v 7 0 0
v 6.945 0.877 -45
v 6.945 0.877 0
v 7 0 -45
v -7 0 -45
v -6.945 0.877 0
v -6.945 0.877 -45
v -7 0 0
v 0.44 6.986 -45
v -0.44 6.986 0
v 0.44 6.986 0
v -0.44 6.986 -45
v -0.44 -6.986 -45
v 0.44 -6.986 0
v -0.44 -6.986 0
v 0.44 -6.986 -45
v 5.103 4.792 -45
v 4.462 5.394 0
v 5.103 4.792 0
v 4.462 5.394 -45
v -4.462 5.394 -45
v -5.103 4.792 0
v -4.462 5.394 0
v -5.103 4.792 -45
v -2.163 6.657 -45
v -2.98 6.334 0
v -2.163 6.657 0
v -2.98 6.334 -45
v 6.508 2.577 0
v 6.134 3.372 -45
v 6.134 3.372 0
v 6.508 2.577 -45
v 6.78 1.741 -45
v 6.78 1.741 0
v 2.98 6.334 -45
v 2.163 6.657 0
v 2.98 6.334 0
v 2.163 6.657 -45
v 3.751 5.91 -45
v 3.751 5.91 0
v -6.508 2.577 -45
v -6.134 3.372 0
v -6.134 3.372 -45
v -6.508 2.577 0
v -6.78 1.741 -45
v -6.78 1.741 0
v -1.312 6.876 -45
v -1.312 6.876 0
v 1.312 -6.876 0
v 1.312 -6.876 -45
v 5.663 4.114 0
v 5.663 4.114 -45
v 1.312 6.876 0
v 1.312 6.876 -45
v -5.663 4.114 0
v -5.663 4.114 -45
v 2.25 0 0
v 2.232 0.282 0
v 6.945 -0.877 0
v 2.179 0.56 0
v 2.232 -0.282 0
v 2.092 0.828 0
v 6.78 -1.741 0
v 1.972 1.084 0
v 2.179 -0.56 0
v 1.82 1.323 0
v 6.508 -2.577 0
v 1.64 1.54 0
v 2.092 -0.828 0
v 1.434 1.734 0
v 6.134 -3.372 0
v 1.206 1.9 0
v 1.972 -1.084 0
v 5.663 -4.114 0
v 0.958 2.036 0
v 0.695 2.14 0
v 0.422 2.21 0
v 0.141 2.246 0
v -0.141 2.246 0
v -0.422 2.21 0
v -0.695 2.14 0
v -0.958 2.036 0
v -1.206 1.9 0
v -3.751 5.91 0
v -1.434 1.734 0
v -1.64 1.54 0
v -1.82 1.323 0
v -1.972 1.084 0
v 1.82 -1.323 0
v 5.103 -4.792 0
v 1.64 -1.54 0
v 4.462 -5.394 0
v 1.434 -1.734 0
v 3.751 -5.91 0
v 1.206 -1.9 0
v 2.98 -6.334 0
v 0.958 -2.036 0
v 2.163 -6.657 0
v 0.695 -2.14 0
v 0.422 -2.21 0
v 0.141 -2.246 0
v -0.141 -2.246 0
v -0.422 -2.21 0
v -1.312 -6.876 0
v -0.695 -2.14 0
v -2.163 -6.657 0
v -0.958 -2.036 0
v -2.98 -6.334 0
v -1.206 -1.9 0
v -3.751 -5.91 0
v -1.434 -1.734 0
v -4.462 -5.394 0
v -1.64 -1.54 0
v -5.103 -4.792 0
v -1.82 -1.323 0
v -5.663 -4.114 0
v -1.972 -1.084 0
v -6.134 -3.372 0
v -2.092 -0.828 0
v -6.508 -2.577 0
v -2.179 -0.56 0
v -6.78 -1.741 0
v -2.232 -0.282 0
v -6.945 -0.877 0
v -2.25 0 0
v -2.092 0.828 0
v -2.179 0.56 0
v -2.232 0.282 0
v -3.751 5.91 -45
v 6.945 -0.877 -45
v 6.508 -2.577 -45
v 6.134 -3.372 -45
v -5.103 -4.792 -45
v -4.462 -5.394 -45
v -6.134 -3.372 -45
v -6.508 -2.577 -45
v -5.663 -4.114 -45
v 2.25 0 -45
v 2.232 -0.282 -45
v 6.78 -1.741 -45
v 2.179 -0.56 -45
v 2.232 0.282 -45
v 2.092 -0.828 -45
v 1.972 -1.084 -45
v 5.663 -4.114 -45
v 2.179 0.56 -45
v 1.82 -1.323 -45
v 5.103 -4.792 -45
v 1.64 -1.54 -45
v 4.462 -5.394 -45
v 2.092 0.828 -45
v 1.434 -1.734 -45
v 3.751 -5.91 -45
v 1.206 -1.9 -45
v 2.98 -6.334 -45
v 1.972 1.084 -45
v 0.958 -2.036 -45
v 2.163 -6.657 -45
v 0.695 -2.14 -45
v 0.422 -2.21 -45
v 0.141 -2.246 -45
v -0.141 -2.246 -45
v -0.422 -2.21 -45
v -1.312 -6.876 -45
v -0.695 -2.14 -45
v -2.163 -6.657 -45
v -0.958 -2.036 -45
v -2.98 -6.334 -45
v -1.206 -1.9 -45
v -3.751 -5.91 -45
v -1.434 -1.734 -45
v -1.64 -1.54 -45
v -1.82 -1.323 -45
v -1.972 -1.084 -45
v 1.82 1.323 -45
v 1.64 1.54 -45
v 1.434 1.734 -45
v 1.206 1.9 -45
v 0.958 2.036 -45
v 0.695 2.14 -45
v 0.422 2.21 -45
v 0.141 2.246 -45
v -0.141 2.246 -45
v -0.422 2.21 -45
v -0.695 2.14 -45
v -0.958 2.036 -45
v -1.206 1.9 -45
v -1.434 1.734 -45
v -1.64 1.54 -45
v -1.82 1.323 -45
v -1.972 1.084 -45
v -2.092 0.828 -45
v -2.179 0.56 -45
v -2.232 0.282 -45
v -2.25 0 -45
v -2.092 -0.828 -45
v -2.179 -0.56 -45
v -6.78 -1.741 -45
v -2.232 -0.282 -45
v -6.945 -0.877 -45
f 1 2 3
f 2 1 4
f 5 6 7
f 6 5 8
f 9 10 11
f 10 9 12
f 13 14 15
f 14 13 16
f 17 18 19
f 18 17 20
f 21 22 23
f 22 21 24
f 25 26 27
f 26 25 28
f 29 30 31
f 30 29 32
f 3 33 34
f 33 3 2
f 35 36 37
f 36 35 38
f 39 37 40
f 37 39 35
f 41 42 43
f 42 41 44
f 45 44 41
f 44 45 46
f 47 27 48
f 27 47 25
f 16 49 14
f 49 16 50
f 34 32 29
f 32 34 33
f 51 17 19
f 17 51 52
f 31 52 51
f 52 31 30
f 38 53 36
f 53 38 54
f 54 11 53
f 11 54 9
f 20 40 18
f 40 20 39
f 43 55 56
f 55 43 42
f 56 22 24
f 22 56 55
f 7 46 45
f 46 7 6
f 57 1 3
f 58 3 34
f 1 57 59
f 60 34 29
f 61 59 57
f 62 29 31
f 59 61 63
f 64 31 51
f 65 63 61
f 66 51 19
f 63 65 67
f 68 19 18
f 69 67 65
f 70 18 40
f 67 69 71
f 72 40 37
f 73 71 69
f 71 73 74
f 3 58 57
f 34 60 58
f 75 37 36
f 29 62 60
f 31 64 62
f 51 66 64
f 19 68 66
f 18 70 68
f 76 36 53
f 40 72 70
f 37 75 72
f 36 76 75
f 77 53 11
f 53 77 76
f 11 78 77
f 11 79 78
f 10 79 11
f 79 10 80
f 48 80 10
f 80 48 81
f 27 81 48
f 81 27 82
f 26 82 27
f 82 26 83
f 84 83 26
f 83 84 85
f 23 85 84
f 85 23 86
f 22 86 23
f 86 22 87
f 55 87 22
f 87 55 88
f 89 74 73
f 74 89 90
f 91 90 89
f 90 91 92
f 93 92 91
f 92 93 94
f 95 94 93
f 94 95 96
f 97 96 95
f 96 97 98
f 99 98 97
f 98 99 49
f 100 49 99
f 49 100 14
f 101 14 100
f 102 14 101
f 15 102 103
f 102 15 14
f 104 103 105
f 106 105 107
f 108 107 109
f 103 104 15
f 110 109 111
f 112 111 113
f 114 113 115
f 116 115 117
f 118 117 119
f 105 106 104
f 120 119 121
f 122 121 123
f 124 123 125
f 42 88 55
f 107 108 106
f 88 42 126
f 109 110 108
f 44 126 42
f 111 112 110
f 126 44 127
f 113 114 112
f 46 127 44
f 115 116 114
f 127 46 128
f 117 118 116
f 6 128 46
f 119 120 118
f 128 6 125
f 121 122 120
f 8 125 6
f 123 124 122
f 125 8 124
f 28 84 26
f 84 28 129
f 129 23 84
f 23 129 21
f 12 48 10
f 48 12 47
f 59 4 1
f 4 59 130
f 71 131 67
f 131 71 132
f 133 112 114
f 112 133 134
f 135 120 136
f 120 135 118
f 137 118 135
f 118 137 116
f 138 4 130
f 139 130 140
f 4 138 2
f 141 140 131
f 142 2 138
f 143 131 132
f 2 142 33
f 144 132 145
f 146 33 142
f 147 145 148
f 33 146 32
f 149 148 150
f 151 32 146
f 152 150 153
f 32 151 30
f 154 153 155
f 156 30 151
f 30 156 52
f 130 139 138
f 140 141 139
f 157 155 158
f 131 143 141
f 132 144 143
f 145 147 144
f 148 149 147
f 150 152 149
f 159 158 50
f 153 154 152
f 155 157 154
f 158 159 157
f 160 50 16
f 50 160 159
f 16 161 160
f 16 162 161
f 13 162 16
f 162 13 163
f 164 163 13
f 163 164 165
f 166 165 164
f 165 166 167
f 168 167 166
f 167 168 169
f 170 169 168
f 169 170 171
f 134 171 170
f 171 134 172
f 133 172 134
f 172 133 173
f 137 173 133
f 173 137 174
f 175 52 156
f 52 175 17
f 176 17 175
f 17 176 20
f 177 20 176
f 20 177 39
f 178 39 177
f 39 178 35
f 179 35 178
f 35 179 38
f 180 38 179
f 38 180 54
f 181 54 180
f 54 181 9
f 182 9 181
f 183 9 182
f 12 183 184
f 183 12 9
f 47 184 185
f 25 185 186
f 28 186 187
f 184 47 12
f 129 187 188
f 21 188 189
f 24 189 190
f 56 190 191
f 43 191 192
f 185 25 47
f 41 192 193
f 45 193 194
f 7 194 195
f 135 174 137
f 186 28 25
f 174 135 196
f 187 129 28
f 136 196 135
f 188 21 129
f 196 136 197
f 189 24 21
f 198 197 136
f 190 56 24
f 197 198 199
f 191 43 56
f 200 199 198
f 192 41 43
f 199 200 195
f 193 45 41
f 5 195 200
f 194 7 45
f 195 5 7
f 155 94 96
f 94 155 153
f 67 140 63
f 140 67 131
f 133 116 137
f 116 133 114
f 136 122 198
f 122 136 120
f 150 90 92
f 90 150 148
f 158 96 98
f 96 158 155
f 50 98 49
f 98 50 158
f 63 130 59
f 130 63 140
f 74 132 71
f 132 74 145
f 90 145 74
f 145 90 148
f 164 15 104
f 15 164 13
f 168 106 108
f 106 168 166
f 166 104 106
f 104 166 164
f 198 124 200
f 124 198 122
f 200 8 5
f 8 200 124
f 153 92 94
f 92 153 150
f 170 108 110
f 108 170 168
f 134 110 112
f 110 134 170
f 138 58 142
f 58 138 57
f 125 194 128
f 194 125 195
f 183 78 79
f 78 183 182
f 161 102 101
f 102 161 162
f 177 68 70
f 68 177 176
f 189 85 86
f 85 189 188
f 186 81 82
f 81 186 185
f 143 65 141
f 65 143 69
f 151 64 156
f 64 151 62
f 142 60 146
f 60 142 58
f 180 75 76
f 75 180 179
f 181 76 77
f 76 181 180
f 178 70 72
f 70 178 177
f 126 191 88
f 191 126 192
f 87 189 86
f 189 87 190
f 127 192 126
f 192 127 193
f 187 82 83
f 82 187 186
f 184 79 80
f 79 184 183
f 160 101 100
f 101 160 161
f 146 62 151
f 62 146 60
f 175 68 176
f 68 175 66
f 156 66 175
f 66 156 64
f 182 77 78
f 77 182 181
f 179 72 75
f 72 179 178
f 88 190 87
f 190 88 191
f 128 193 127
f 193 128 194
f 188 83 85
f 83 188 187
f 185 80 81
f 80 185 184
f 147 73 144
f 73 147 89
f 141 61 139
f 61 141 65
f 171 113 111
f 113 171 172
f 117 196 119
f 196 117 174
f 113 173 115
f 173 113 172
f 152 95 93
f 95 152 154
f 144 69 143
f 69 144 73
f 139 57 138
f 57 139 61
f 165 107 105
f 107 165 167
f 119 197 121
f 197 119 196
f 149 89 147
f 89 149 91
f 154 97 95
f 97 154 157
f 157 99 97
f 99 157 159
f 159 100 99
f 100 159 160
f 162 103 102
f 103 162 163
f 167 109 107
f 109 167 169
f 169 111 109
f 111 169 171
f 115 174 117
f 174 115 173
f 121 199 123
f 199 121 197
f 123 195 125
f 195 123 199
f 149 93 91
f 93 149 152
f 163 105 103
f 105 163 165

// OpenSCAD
$fn = 50;


difference() {
	union() {
		translate(v = [0, 0, -45.0000000000]) {
			cylinder(h = 45, r = 7.0000000000);
		}
		cylinder(h = 0, r = 10.0000000000);
	}
	union() {
		#translate(v = [0, 0, -45]) {
			cylinder(h = 45, r = 2.2500000000);
		}
	}
}
